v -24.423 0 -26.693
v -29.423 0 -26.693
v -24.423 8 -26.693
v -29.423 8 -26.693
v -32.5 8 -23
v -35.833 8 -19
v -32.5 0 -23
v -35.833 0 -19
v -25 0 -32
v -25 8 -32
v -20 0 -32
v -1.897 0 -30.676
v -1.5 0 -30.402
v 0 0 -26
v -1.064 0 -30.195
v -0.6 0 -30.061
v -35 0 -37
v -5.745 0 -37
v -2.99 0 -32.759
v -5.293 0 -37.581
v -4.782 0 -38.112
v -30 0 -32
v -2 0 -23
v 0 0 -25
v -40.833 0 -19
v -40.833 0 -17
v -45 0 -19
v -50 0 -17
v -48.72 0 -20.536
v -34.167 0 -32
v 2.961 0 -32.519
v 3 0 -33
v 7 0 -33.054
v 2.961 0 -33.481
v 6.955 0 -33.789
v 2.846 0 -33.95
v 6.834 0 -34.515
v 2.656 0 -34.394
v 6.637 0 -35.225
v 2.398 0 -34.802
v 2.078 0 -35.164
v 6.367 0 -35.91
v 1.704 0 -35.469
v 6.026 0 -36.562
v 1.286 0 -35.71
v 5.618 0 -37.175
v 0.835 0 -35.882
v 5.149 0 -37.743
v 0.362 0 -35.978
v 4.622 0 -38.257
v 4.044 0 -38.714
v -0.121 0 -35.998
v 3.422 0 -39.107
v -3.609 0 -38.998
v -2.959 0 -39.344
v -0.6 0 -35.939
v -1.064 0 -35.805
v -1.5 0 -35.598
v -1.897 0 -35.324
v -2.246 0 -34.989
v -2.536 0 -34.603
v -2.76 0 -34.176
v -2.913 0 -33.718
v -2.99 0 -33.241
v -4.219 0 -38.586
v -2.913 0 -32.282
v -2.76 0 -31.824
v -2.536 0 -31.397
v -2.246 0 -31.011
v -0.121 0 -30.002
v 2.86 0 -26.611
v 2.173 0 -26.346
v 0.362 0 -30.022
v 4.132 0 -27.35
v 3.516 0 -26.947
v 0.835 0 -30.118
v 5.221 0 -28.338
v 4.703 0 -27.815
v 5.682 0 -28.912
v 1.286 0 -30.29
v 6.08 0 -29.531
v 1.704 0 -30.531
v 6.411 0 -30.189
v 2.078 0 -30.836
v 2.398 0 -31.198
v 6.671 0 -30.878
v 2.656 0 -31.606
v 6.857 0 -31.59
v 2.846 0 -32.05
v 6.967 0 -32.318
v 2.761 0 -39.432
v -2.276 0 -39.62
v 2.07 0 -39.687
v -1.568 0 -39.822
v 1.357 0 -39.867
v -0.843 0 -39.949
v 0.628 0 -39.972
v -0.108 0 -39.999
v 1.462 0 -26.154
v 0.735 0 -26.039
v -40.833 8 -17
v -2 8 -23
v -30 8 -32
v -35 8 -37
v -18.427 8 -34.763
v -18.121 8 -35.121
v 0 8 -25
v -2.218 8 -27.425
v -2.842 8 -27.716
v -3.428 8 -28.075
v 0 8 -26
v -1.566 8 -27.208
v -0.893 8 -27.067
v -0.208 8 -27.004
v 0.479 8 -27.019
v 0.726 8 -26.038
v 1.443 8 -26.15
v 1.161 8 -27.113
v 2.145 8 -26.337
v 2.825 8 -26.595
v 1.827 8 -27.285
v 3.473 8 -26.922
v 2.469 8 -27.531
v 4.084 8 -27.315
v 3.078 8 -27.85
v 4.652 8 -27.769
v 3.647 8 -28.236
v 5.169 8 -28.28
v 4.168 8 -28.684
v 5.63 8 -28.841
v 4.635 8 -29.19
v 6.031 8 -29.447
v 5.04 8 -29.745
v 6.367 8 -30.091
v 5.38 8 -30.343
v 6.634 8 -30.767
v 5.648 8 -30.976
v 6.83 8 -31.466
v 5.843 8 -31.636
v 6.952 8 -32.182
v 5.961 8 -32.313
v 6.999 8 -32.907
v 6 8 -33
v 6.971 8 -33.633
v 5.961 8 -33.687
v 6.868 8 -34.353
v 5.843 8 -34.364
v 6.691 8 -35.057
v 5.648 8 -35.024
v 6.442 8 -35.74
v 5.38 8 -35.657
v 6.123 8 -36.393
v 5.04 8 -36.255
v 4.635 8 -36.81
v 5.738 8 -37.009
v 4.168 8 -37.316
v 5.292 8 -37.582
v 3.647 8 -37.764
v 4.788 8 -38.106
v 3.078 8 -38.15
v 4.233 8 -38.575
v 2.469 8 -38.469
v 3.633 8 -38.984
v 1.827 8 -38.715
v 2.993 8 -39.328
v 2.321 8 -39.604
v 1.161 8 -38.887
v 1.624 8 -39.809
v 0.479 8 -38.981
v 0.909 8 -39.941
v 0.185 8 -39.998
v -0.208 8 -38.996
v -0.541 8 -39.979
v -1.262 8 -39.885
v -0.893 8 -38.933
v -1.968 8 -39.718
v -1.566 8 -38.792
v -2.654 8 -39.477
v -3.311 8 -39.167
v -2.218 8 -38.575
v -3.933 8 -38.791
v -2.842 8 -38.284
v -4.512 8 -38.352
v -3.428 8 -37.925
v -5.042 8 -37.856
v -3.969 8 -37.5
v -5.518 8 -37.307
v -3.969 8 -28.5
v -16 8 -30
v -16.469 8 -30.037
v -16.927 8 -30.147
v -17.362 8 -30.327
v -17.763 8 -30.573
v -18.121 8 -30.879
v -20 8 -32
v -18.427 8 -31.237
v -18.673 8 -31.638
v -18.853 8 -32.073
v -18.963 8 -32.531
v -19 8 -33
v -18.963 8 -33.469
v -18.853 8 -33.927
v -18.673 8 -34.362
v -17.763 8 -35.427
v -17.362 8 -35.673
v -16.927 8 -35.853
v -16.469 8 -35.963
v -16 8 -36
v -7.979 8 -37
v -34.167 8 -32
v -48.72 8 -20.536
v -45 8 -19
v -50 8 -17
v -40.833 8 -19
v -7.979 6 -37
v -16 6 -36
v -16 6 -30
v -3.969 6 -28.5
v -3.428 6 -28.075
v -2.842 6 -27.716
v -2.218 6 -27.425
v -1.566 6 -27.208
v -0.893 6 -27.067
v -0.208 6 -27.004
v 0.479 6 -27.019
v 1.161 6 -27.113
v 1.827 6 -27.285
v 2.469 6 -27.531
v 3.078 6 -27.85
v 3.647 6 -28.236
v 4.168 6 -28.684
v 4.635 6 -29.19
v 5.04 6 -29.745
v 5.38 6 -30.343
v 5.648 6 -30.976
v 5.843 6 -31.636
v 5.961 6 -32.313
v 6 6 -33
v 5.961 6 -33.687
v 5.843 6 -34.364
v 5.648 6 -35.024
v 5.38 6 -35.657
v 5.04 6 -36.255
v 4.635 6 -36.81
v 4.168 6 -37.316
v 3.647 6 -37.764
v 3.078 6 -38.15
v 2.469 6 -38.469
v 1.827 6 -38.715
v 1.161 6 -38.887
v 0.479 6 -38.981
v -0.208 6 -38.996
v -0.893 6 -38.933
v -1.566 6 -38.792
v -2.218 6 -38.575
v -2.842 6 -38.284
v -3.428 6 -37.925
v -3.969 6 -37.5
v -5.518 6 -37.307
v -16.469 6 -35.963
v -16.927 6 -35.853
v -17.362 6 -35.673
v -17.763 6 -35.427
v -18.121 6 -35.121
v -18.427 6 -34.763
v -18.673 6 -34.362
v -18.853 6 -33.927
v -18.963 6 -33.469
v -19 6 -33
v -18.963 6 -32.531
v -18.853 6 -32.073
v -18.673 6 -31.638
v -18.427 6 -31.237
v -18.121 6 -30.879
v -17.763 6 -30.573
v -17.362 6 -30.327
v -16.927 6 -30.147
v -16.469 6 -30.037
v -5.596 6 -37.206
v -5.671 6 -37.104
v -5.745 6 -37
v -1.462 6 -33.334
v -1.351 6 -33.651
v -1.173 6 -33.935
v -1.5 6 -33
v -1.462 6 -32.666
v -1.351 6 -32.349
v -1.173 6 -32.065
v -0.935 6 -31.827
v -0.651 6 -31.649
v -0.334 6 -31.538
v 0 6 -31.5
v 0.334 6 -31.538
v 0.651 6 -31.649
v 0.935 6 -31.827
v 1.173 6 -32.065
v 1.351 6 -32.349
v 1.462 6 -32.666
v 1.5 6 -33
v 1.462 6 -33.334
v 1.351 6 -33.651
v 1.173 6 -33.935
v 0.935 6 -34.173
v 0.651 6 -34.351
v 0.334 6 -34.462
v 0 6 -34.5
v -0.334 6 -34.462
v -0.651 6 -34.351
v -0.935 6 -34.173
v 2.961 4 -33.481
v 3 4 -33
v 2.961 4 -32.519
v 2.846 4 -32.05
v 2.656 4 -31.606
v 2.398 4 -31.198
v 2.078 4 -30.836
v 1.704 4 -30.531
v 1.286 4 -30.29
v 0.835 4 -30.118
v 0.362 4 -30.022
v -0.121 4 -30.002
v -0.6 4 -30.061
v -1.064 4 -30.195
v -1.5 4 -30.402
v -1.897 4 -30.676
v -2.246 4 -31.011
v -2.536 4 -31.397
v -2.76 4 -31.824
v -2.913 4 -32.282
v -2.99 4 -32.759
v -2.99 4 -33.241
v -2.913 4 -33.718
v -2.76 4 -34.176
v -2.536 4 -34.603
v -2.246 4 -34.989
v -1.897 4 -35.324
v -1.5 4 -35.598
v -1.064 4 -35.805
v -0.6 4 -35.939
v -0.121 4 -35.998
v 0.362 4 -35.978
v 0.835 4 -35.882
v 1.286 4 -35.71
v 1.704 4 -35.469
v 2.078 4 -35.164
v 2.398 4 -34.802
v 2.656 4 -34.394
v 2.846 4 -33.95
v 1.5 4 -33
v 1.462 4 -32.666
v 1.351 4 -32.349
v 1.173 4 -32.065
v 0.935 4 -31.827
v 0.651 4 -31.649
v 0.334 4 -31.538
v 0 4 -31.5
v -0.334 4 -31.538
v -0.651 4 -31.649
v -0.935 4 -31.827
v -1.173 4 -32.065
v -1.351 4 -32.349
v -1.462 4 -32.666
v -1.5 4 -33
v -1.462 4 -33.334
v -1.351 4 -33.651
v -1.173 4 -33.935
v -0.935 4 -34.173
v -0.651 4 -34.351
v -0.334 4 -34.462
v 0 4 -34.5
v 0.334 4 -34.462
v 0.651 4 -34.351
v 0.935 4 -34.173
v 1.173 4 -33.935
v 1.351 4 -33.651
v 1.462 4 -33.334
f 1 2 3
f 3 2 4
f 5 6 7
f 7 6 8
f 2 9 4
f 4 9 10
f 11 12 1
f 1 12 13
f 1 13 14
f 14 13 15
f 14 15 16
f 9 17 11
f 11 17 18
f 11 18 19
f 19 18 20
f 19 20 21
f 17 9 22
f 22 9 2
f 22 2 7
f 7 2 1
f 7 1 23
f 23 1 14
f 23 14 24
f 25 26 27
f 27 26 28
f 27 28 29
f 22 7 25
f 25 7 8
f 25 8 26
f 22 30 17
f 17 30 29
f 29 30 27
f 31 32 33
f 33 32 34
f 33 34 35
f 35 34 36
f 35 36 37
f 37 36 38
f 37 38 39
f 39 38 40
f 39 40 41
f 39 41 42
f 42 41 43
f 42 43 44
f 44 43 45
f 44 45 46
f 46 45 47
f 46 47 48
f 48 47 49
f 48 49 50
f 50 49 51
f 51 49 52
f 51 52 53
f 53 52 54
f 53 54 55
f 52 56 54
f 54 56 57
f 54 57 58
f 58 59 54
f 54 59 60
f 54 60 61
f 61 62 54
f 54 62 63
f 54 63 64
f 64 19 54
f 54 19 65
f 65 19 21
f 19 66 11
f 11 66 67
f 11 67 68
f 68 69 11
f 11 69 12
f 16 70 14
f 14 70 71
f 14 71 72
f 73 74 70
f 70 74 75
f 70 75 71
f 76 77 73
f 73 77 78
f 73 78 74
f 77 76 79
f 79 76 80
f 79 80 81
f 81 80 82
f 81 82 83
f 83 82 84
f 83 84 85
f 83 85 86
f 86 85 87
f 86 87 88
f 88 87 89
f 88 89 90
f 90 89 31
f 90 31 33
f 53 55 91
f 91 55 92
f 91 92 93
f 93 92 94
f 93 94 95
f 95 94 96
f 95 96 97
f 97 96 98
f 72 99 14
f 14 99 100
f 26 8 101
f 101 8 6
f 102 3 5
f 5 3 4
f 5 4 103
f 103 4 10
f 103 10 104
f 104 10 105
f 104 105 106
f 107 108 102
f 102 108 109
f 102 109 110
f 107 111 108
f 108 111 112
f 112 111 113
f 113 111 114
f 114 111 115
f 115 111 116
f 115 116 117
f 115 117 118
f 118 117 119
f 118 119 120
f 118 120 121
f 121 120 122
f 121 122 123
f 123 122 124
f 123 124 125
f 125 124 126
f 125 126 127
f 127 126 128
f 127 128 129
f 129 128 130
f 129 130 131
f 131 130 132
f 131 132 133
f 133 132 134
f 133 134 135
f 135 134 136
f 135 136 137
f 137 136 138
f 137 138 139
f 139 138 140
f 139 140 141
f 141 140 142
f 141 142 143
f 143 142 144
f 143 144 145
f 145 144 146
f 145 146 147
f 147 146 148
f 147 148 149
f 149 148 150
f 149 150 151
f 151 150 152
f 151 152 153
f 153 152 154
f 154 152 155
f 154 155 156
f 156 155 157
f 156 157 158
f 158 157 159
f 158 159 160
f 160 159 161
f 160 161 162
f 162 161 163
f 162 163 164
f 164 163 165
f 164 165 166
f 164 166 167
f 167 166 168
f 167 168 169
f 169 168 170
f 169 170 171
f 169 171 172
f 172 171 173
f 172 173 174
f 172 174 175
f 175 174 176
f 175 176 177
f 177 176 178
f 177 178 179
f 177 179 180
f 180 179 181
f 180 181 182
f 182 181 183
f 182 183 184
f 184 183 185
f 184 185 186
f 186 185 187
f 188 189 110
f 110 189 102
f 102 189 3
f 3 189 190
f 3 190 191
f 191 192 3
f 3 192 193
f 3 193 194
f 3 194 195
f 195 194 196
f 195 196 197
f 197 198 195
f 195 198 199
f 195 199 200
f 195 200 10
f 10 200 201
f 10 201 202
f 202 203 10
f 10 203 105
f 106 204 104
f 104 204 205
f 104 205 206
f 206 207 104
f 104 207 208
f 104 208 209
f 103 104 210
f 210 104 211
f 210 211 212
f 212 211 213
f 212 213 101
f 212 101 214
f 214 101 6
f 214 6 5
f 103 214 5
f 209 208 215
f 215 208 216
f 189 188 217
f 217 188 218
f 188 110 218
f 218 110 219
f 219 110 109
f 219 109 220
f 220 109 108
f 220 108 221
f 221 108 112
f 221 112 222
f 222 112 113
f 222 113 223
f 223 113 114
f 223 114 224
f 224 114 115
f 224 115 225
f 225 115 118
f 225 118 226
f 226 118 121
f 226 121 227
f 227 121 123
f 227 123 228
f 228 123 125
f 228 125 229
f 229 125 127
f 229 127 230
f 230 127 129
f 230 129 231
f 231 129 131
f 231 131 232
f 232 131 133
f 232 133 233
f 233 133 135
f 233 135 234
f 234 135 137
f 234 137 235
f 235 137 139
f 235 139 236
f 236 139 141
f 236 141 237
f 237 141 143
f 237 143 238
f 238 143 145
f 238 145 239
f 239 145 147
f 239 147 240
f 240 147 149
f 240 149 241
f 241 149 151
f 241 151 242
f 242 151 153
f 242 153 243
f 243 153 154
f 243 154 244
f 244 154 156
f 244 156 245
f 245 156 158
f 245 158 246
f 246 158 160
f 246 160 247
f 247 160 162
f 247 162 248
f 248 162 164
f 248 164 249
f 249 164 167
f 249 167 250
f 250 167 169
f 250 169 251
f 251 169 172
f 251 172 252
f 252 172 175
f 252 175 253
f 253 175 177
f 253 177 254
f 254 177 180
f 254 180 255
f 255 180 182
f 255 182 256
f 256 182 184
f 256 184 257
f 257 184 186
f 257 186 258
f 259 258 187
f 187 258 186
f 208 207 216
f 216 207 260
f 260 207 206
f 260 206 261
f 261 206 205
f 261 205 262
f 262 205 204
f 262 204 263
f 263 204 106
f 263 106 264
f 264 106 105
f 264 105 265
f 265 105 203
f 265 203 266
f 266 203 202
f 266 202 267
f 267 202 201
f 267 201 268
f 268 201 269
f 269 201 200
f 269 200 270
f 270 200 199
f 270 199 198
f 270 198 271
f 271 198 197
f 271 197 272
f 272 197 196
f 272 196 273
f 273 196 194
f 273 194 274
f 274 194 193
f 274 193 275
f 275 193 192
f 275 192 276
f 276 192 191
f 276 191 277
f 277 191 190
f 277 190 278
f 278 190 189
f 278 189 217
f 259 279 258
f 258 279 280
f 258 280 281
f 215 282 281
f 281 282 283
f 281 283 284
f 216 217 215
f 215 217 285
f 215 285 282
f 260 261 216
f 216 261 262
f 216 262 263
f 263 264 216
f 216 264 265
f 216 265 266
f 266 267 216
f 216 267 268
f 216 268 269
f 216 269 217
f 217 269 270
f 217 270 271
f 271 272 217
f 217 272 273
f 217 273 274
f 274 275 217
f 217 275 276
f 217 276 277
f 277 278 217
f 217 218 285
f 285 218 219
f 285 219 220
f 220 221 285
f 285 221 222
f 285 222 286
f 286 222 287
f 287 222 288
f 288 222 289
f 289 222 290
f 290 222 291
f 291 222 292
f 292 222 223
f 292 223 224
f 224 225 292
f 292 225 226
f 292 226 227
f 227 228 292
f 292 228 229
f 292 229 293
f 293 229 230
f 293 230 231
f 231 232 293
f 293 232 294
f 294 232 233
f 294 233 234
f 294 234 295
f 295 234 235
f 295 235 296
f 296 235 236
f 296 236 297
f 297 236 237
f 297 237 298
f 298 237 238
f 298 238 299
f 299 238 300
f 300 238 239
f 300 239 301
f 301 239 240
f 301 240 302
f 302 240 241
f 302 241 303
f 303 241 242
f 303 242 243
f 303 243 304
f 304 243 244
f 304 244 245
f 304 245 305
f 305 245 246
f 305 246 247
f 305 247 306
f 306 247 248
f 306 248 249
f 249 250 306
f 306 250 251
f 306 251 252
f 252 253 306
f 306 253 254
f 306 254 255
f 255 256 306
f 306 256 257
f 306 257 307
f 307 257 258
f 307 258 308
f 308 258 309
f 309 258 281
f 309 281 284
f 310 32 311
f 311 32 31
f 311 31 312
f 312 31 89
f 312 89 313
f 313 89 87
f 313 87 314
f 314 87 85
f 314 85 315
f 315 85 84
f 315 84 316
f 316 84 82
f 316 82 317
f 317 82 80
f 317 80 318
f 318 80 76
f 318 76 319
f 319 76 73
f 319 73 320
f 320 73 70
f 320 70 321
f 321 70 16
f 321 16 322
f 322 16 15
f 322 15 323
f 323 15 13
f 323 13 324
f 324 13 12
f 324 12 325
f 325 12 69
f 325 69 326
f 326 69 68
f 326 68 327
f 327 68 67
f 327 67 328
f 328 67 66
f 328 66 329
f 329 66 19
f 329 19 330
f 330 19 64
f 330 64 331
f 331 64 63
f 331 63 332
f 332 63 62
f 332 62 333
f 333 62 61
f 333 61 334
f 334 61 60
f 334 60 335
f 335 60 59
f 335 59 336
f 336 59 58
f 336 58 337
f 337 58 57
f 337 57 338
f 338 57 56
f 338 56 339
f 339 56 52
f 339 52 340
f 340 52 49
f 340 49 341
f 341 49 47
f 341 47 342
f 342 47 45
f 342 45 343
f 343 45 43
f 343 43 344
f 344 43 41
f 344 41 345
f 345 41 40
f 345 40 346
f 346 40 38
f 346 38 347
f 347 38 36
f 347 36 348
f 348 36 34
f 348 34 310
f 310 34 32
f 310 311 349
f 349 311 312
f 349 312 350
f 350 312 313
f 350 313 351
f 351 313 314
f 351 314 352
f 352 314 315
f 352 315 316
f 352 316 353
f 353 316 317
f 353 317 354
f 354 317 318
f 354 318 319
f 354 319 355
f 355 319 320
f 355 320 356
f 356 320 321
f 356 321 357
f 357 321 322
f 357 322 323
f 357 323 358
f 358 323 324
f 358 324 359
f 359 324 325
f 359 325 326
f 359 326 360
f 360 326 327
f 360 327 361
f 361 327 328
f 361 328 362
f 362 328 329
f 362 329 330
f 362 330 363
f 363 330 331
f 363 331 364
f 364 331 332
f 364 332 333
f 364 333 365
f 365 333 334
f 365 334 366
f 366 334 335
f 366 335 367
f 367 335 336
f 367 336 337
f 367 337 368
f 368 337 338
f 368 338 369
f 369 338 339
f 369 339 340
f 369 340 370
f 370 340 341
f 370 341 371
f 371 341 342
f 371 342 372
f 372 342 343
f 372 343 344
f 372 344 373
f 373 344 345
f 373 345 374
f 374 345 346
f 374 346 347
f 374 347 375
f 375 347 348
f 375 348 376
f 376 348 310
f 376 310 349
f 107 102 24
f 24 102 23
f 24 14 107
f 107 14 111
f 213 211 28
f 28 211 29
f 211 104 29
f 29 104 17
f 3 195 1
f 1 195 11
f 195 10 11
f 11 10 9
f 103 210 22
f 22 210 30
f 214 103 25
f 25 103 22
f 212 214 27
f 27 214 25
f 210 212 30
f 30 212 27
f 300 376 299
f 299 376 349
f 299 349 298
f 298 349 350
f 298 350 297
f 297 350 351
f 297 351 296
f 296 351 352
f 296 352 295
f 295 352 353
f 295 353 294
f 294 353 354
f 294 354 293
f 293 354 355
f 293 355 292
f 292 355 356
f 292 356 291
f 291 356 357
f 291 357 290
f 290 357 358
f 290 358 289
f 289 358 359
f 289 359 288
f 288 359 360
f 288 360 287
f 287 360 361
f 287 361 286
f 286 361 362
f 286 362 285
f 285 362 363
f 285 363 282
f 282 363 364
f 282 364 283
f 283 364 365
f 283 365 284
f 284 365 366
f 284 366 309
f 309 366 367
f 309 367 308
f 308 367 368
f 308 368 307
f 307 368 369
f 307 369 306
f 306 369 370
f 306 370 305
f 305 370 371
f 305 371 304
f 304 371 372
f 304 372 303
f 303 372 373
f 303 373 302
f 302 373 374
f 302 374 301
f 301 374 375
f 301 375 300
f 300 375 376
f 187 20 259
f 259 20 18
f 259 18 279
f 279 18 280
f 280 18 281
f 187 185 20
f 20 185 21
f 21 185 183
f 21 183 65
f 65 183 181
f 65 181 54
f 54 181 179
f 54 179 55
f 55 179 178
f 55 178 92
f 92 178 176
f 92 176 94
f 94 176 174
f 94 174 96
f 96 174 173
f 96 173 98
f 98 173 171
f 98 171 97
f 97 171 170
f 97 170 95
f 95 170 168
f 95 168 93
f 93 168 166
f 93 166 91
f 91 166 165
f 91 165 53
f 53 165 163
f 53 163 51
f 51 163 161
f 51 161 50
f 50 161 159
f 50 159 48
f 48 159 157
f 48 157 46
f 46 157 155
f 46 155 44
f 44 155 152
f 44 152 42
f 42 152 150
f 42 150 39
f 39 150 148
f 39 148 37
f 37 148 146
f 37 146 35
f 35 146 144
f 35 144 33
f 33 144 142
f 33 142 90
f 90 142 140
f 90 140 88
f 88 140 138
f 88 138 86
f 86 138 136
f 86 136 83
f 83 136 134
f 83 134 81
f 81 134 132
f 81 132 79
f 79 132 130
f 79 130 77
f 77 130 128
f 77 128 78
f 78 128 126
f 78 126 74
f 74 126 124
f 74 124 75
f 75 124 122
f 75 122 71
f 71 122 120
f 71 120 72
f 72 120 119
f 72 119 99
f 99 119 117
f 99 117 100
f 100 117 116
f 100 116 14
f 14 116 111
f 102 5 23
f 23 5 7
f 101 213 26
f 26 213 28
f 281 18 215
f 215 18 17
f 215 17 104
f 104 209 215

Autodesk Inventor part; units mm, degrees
ref_plane "YZ Plane" through (0, 0, 0) normal (1, 0, 0) x (0, 1, 0)
ref_plane "XZ Plane" through (0, 0, 0) normal (0, 1, 0) x (-1, 0, 0)
ref_plane "XY Plane" through (0, 0, 0) normal (0, 0, 1) x (1, 0, 0)
sketch "Boceto1" plane through (0, 0, 0) normal (0, 1, 0) x (-1, 0, 0)
  line L0 (50, -16.5) -> (49.0807, -16.5)
  circle A0 centre (0, -33) radius 1.5
  circle A1 centre (0, -33) radius 3
  arc A2 (0, -26) -> (5.7446, -37) centre (0, -33) ccw
  line L1 (5.7446, -37) -> (35, -37)
  line L2 (35, -37) -> (50, -19)
  line L3 (0, -23) -> (20, -23)
  line L4 (20, -23) -> (20, -17)
  line L5 (20, -17) -> (50, -17)
  line L6 (50, -17) -> (50, -19)
  line L7 (0, -31.5) -> (0, -30)
  line L8 (0, -26) -> (0, -23)
  point P0 (0, -37)
extrude "Extrusión1" add sketch "Boceto1" along normal blind 8 contours A1 | L8 L3 L4 L5 L6 L2 L1 A2
sketch "Boceto2" plane through (0, 8, 0) normal (0, 1, 0) x (1, 0, 0)
  circle A0 centre (0, 0) radius 3
  dimension "d12" = 6
extrude "Extrusión2" cut sketch "Boceto2" against normal blind 4
sketch "Boceto6" plane through (0, 0, 0) normal (0, -1, 0) x (1, 0, 0)
  line L0 (-50, -17) -> (-20, -17) projected
  line L1 (-50, -16) -> (-50, -14) projected
  line L2 (-50, -17) -> (-50, -16)
  line L3 (-50, -16.5) -> (-16.403, -16.5)
  line L4 (-20, -23) -> (-25, -23)
  line L5 (-5.7446, -37) -> (-35, -37) projected
  line L6 (-25, -23) -> (-25, -28)
  line L7 (-25, -37) -> (-25, -32)
  line L8 (-25, -32) -> (-5.7446, -32)
  line L9 (-5.7446, -32) -> (-5.7446, -27.061)
  line L10 (-25, -28) -> (-5.7446, -28)
  line L11 (-35, -37) -> (-30, -37)
  line L12 (-30, -37) -> (-30, -32)
  line L13 (-30, -32) -> (-25, -32)
  line L14 (-50, -19) -> (-50, -17) projected
  line L15 (-50, -19) -> (-45, -19)
  line L16 (-30, -37) -> (-45, -19)
  line L17 (-45, -19) -> (-40, -19)
  line L18 (-30, -32) -> (-40.8333, -19)
  line L19 (-40.8333, -19) -> (-25, -19)
  line L20 (-25, -19) -> (-25, -28)
  line L21 (-30, -32) -> (-34.1667, -32)
  line L22 (-40.8333, -19) -> (-35.8333, -19)
  line L23 (-35.8333, -19) -> (-25, -32)
  line L24 (-35.8333, -19) -> (-30.8333, -19)
  line L25 (-25, -32) -> (-20, -32)
  line L26 (-20, -32) -> (-30.8333, -19)
  line L27 (-30, 4) -> (-45, -14)
  line L28 (-45, -14) -> (-40, -14)
  line L29 (-30, -1) -> (-40.8333, -14)
  line L30 (-30, -1) -> (-34.1667, -1)
  line L31 (-35.8333, -14) -> (-25, -1)
  line L32 (-35.8333, -14) -> (-30.8333, -14)
  line L33 (-25, -1) -> (-20, -1)
  line L34 (-20, -1) -> (-30.8333, -14)
  point P0 (0, 0)
  dimension "d28" = 5
  dimension "d29" = 5
  dimension "d30" = 5
  dimension "d31" = 5
  dimension "d32" = 5
  dimension "d33" = 5
  dimension "d34" = 5
  dimension "d35" = 5
  dimension "d36" = 5
extrude "Extrusión6" cut sketch "Boceto6" against normal blind 10 contours L23 L19 L26 L6 L10 L8 | L21 L16 L17 L18 | L10 L6 L26 | L30 L29 L28 L27 | L31 L33 L34 L32
chamfer "Chaflán1" distance 2 angle 45 2 edges at (-50, 4, -19) (0, 4, -23)
sketch "Boceto9" plane through (0, 0, 0) normal (0, -1, 0) x (1, 0, 0)
  circle A0 centre (0, -33) radius 1.5 projected
  circle A1 centre (0, -33) radius 3
  point P0 (0, 0)
  dimension "d47" = 6
extrude "Extrusión9" cut sketch "Boceto9" against normal blind 4
sketch "Boceto10" plane through (0, 8, 0) normal (0, 1, 0) x (1, 0, 0)
  circle A0 centre (0, 33) radius 1.5 projected
  circle A1 centre (0, 33) radius 6
  line L0 (0, 33) -> (-19, 33)
  line L1 (0, 33) -> (0, 37.5)
  line L2 (0, 37.5) -> (-19, 37.5)
  line L3 (-19, 37.5) -> (-19, 28.5)
  line L4 (-19, 28.5) -> (0, 28.5)
  line L5 (-19, 33) -> (-16, 33)
  circle A2 centre (-16, 33) radius 3
  circle A3 centre (-16, 33) radius 3
  line L6 (-16, 36) -> (-3.9686, 37.5)
  line L7 (-16, 33) -> (-16, 30)
  line L8 (-16, 30) -> (-3.9686, 28.5)
  point P0 (0, 0)
  dimension "d50" = 12
  dimension "d51" = 19
  dimension "d52" = 4.5
  dimension "d53" = 9
  dimension "d54" = 3
extrude "Extrusión10" cut sketch "Boceto10" against normal blind 2 contours A0 L1 L2 A1 L0 | A0 L0 A1 L2 L1 | L0 A2 L6 A1 | A1 L8 A2 L0 | A2 L7 L0 | L0 A2 | A2 L0 L7
sketch "Boceto14" plane through (0, 0, 0) normal (0, -1, 0) x (1, 0, 0)
  line L0 (-40.8333, -14) -> (-30, -1) projected
  line L1 (-35.8333, -14) -> (-30.8333, -14) projected
  line L2 (-40.8333, -14) -> (-35.8333, -14)
  line L3 (-35.8333, -14) -> (-38.3333, -14)
  line L4 (-25, -1) -> (-35.8333, -14) projected
  line L5 (-35.8333, -14) -> (-29.4226, -6.3071)
  line L6 (-34.4226, -6.3071) -> (-29.4226, -6.3071)
  line L7 (-29.4226, -6.3071) -> (-20, -6.3071)
  line L8 (0, -10) -> (9, -10) projected
  line L9 (-20, -6.3071) -> (-20, -10)
  line L10 (-40.8333, -14) -> (-40.8333, -16)
  line L11 (-20, -16) -> (-50, -16) projected
  line L12 (-20, -10) -> (-20, -16) projected
  line L13 (-40.8333, -16) -> (-20, -16)
  line L14 (-20, -16) -> (-20, -10)
  line L15 (-35.8333, -14) -> (-30.8333, -14)
  line L16 (-30.8333, -14) -> (-20, -1) projected
  line L17 (-24.4226, -6.3071) -> (-30.8333, -14)
  line L18 (-35.8333, -14) -> (-40.8333, -16)
  line L19 (-50, -16) -> (-50, -17)
  line L20 (-50, -16.5) -> (-40.8333, -16.5)
  line L21 (-40.8333, -19) -> (-30, -32)
  line L22 (-35.8333, -19) -> (-30.8333, -19)
  line L23 (-40.8333, -19) -> (-35.8333, -19)
  line L24 (-35.8333, -19) -> (-38.3333, -19)
  line L25 (-25, -32) -> (-35.8333, -19)
  line L26 (-35.8333, -19) -> (-29.4226, -26.6929)
  line L27 (-34.4226, -26.6929) -> (-29.4226, -26.6929)
  line L28 (-29.4226, -26.6929) -> (-20, -26.6929)
  line L29 (-20, -26.6929) -> (-20, -23)
  line L30 (-40.8333, -19) -> (-40.8333, -17)
  line L31 (-20, -23) -> (-20, -17)
  line L32 (-40.8333, -17) -> (-20, -17)
  line L33 (-20, -17) -> (-20, -23)
  line L34 (-35.8333, -19) -> (-30.8333, -19)
  line L35 (-30.8333, -19) -> (-20, -32)
  line L36 (-24.4226, -26.6929) -> (-30.8333, -19)
  line L37 (-35.8333, -19) -> (-40.8333, -17)
  point P0 (0, 0)
  point P1 (7, -10)
extrude "Extrusión13" cut sketch "Boceto14" against normal blind 8 contours L18 L1 L16 L7 L9 L12 L11 | L32 L31 L29 L28 L35 L22 L37
sketch "Boceto15" plane through (0, 0, 0) normal (0, -1, 0) x (1, 0, 0)
  line L0 (-20, -6.3071) -> (-24.4226, -6.3071) projected
  line L1 (-20, -6.3071) -> (-29.4226, -6.3071)
  line L2 (-35.8333, -14) -> (-25, -1) projected
  line L3 (-20, -10) -> (-20, -6.3071) projected
  line L4 (-20, -10) -> (-32.5381, -10)
  line L5 (-32.5381, -10) -> (-29.4226, -6.3071)
  line L6 (-50, -17) -> (-40.8333, -17) projected
  line L7 (-40.8333, -16) -> (-50, -16) projected
  line L8 (-50, -17) -> (-50, -16)
  line L9 (-50, -16.5) -> (-36.6527, -16.5)
  line L10 (-20, -26.6929) -> (-24.4226, -26.6929)
  line L11 (-20, -26.6929) -> (-29.4226, -26.6929)
  line L12 (-20, -23) -> (-20, -26.6929)
  line L13 (-20, -23) -> (-32.5381, -23)
  line L14 (-32.5381, -23) -> (-29.4226, -26.6929)
  point P0 (0, 0)
  point P1 (-32.5, -10)
extrude "Extrusión14" add sketch "Boceto15" against normal blind 8 contours L3 L4 L2 L1 L0 | L10 L11 L14 L13 L12
sketch "Boceto17" plane through (0, 8, 0) normal (0, 1, 0) x (1, 0, 0)
  line L0 (-20, 10) -> (-32.5, 10) projected
  line L1 (-29.4226, 6.3071) -> (-20, 6.3071) projected
  line L2 (-32.5, 10) -> (-29.4226, 6.3071)
  line L3 (-29.4226, 6.3071) -> (-20, 6.3071)
  line L4 (-20, 6.3071) -> (-20, 10) projected
  line L5 (-20, 6.3071) -> (-20, 10)
  line L6 (-20, 10) -> (-32.5, 10)
  point P0 (0, 0)
extrude "Extrusión16" cut sketch "Boceto17" against normal blind 10
properties part number "signle v2"
